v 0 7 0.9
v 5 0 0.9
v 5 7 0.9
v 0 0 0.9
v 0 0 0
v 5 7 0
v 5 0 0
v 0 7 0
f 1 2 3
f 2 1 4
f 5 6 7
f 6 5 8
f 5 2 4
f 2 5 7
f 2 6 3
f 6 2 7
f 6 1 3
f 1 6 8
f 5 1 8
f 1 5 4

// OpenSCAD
/* Warning, this is a very basic generator with a lot of approximation 
input data : [VDFN, JZA, 5x7x0.9mm, 4, , B, C04-01025B]
generated by com.zoubworld.electronics.cad.model3d.Basic
Date : Sun Feb 15 10:50:49 CET 2026
*/

//body
color("black")
translate([0,0,0])
cube([5.0,7.0,0.9], center=false);
